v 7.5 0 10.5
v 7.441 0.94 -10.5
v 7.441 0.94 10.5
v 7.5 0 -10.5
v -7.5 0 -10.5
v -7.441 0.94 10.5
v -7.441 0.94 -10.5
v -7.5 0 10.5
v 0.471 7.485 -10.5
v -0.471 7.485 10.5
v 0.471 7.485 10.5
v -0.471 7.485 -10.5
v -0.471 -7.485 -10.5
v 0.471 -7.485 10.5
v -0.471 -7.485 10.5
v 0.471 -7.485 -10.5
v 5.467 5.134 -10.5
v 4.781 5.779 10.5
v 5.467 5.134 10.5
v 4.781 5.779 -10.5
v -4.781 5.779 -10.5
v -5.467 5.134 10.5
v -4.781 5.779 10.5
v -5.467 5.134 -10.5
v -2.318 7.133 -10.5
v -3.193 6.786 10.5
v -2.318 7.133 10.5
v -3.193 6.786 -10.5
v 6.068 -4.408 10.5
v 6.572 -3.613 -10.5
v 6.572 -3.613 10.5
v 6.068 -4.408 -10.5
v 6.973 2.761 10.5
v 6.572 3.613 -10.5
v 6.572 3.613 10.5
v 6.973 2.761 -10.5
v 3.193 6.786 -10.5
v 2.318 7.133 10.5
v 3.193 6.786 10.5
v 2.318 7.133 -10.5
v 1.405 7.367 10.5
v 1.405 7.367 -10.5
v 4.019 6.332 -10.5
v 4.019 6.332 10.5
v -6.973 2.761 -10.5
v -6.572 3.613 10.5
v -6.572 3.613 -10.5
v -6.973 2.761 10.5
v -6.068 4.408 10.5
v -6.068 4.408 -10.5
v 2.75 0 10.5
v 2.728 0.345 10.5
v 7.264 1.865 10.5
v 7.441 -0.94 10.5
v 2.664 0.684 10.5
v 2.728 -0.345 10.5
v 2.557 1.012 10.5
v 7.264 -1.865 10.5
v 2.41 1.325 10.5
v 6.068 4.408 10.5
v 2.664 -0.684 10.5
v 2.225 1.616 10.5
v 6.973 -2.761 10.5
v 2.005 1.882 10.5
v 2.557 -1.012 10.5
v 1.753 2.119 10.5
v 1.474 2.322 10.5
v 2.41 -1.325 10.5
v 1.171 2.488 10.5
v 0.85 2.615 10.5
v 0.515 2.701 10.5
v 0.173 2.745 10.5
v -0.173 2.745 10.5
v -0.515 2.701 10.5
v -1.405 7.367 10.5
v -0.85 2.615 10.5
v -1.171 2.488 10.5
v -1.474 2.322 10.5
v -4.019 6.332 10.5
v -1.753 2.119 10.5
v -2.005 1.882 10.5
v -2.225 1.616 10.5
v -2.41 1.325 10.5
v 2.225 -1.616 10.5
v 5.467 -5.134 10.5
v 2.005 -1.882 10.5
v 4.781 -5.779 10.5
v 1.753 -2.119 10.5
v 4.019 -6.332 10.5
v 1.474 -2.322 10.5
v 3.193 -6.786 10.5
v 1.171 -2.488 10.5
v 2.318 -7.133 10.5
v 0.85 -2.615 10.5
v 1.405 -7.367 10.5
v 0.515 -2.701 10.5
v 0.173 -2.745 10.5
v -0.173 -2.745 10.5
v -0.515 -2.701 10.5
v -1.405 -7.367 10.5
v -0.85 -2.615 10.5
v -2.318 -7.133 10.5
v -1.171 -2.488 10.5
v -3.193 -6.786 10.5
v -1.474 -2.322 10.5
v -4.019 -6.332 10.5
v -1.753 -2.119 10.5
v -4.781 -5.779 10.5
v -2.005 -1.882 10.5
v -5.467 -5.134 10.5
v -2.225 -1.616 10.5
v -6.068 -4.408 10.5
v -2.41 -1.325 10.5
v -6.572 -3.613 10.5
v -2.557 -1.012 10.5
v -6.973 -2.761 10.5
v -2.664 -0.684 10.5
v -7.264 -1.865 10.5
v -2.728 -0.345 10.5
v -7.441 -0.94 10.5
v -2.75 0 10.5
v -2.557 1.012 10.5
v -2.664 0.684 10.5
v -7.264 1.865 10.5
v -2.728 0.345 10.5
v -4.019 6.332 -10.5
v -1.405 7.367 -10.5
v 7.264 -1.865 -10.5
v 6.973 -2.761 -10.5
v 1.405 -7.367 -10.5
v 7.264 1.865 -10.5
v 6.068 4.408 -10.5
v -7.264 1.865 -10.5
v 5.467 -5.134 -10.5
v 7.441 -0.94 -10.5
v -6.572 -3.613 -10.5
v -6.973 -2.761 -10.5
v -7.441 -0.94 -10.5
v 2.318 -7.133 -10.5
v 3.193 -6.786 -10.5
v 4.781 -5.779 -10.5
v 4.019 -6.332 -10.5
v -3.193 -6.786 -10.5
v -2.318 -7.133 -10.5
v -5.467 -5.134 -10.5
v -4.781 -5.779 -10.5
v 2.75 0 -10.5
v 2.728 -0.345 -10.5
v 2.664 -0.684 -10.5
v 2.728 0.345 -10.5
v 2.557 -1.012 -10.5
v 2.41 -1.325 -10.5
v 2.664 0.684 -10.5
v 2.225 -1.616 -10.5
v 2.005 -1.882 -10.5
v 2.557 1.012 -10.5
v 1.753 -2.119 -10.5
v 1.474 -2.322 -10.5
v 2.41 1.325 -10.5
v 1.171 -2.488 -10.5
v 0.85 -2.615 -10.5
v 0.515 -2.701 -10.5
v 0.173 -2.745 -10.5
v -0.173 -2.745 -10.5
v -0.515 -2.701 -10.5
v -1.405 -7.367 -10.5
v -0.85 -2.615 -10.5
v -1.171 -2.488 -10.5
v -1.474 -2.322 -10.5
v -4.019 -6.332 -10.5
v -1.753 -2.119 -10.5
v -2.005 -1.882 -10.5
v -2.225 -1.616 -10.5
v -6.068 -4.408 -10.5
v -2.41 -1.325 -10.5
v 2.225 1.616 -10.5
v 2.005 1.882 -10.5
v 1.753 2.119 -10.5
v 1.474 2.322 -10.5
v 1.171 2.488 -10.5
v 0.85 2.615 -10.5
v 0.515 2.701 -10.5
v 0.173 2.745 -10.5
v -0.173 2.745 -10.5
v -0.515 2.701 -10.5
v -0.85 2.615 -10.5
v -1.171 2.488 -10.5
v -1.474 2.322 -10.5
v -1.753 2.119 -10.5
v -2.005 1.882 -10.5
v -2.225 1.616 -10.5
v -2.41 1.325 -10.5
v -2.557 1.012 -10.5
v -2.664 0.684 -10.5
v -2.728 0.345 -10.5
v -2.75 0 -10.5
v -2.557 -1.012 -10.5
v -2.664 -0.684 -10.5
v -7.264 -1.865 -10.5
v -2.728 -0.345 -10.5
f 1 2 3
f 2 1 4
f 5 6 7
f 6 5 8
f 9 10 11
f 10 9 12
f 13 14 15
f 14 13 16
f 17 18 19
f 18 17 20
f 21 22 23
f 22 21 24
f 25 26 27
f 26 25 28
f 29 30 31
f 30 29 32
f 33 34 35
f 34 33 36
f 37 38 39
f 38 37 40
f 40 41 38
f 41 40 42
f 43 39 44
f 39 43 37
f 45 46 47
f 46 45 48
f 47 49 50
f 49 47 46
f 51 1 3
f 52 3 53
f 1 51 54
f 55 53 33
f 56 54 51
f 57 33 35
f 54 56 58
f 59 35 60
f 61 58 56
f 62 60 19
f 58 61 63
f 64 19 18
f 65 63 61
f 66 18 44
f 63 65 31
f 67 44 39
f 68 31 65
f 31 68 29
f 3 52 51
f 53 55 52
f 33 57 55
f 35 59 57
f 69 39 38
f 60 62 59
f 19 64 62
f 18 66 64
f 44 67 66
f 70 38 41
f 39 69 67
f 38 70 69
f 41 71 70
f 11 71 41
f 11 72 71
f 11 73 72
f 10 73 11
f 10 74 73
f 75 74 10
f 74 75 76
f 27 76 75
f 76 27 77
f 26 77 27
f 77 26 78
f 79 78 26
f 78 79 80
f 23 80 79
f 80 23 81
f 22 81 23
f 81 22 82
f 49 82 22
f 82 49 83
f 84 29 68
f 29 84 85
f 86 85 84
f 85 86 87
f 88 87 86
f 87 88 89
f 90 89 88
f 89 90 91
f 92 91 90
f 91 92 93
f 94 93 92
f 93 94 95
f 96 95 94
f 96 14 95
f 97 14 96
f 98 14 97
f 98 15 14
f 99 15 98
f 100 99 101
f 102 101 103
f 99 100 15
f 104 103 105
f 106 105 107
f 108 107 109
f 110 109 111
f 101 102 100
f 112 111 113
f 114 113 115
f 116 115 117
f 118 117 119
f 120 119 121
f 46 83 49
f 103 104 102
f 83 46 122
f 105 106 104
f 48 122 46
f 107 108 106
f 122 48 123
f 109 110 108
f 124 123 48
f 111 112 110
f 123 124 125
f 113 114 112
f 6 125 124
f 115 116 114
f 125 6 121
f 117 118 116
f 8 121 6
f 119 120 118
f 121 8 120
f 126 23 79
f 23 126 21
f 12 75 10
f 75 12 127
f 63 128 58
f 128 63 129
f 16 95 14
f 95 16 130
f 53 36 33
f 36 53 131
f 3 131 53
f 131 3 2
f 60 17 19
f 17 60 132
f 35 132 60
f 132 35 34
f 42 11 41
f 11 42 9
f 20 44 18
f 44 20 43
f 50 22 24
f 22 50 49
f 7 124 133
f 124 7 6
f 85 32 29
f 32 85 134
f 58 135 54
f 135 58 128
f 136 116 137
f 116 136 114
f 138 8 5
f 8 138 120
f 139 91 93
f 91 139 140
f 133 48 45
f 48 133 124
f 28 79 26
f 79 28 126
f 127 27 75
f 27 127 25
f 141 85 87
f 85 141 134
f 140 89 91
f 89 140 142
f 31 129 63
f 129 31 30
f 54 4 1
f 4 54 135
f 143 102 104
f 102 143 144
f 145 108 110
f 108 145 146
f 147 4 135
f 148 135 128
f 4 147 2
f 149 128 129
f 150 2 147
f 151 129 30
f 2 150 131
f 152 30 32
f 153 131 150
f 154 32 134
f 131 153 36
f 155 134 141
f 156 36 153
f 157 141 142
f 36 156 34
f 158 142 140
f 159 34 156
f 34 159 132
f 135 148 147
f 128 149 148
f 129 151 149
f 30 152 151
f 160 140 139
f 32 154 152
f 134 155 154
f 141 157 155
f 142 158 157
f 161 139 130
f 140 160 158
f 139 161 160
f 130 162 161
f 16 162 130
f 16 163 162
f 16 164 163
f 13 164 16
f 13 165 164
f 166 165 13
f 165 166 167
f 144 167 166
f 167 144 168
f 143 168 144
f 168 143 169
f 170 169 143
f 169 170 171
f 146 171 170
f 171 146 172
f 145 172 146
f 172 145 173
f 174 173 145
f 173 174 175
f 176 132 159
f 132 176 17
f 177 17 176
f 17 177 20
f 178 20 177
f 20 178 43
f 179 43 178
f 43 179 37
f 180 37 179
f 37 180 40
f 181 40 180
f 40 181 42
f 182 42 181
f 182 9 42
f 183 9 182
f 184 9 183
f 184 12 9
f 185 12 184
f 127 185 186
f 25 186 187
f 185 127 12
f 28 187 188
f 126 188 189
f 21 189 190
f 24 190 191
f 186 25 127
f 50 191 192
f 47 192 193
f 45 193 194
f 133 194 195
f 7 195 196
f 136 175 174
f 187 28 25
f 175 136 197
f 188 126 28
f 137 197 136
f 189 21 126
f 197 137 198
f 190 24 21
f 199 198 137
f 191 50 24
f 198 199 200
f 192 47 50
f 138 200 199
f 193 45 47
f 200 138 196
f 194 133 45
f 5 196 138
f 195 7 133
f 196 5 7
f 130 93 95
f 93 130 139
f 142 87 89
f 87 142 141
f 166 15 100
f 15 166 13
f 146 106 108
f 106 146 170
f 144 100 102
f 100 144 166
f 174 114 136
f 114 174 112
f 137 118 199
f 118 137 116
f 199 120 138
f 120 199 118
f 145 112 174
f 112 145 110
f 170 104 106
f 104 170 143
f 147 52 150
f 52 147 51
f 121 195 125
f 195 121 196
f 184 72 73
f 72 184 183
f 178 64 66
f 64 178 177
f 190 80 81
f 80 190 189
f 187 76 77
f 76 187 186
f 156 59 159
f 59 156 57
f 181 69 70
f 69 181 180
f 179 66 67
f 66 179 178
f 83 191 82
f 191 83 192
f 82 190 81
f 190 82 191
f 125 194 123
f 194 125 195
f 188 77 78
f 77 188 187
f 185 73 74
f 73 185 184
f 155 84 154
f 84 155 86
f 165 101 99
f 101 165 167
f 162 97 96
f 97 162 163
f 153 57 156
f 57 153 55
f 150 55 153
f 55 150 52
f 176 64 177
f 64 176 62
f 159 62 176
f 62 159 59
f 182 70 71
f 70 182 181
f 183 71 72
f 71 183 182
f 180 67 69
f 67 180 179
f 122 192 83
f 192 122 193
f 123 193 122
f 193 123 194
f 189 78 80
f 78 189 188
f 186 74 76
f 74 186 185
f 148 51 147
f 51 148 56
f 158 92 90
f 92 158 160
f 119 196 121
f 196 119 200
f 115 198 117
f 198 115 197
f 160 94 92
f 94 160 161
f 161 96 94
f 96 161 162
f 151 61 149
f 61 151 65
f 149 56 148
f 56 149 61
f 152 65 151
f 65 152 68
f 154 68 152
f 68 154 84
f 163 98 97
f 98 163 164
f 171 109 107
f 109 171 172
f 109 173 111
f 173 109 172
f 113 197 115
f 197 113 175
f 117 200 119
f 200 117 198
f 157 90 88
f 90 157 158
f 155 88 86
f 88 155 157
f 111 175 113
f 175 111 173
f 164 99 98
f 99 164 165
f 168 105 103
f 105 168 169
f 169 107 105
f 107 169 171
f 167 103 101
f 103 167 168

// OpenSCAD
$fn = 50;


difference() {
	union() {
		translate(v = [0, 0, -10.5000000000]) {
			cylinder(h = 21, r = 7.5000000000);
		}
	}
	union() {
		translate(v = [0, 0, -100.0000000000]) {
			cylinder(h = 200, r = 2.7500000000);
		}
	}
}
